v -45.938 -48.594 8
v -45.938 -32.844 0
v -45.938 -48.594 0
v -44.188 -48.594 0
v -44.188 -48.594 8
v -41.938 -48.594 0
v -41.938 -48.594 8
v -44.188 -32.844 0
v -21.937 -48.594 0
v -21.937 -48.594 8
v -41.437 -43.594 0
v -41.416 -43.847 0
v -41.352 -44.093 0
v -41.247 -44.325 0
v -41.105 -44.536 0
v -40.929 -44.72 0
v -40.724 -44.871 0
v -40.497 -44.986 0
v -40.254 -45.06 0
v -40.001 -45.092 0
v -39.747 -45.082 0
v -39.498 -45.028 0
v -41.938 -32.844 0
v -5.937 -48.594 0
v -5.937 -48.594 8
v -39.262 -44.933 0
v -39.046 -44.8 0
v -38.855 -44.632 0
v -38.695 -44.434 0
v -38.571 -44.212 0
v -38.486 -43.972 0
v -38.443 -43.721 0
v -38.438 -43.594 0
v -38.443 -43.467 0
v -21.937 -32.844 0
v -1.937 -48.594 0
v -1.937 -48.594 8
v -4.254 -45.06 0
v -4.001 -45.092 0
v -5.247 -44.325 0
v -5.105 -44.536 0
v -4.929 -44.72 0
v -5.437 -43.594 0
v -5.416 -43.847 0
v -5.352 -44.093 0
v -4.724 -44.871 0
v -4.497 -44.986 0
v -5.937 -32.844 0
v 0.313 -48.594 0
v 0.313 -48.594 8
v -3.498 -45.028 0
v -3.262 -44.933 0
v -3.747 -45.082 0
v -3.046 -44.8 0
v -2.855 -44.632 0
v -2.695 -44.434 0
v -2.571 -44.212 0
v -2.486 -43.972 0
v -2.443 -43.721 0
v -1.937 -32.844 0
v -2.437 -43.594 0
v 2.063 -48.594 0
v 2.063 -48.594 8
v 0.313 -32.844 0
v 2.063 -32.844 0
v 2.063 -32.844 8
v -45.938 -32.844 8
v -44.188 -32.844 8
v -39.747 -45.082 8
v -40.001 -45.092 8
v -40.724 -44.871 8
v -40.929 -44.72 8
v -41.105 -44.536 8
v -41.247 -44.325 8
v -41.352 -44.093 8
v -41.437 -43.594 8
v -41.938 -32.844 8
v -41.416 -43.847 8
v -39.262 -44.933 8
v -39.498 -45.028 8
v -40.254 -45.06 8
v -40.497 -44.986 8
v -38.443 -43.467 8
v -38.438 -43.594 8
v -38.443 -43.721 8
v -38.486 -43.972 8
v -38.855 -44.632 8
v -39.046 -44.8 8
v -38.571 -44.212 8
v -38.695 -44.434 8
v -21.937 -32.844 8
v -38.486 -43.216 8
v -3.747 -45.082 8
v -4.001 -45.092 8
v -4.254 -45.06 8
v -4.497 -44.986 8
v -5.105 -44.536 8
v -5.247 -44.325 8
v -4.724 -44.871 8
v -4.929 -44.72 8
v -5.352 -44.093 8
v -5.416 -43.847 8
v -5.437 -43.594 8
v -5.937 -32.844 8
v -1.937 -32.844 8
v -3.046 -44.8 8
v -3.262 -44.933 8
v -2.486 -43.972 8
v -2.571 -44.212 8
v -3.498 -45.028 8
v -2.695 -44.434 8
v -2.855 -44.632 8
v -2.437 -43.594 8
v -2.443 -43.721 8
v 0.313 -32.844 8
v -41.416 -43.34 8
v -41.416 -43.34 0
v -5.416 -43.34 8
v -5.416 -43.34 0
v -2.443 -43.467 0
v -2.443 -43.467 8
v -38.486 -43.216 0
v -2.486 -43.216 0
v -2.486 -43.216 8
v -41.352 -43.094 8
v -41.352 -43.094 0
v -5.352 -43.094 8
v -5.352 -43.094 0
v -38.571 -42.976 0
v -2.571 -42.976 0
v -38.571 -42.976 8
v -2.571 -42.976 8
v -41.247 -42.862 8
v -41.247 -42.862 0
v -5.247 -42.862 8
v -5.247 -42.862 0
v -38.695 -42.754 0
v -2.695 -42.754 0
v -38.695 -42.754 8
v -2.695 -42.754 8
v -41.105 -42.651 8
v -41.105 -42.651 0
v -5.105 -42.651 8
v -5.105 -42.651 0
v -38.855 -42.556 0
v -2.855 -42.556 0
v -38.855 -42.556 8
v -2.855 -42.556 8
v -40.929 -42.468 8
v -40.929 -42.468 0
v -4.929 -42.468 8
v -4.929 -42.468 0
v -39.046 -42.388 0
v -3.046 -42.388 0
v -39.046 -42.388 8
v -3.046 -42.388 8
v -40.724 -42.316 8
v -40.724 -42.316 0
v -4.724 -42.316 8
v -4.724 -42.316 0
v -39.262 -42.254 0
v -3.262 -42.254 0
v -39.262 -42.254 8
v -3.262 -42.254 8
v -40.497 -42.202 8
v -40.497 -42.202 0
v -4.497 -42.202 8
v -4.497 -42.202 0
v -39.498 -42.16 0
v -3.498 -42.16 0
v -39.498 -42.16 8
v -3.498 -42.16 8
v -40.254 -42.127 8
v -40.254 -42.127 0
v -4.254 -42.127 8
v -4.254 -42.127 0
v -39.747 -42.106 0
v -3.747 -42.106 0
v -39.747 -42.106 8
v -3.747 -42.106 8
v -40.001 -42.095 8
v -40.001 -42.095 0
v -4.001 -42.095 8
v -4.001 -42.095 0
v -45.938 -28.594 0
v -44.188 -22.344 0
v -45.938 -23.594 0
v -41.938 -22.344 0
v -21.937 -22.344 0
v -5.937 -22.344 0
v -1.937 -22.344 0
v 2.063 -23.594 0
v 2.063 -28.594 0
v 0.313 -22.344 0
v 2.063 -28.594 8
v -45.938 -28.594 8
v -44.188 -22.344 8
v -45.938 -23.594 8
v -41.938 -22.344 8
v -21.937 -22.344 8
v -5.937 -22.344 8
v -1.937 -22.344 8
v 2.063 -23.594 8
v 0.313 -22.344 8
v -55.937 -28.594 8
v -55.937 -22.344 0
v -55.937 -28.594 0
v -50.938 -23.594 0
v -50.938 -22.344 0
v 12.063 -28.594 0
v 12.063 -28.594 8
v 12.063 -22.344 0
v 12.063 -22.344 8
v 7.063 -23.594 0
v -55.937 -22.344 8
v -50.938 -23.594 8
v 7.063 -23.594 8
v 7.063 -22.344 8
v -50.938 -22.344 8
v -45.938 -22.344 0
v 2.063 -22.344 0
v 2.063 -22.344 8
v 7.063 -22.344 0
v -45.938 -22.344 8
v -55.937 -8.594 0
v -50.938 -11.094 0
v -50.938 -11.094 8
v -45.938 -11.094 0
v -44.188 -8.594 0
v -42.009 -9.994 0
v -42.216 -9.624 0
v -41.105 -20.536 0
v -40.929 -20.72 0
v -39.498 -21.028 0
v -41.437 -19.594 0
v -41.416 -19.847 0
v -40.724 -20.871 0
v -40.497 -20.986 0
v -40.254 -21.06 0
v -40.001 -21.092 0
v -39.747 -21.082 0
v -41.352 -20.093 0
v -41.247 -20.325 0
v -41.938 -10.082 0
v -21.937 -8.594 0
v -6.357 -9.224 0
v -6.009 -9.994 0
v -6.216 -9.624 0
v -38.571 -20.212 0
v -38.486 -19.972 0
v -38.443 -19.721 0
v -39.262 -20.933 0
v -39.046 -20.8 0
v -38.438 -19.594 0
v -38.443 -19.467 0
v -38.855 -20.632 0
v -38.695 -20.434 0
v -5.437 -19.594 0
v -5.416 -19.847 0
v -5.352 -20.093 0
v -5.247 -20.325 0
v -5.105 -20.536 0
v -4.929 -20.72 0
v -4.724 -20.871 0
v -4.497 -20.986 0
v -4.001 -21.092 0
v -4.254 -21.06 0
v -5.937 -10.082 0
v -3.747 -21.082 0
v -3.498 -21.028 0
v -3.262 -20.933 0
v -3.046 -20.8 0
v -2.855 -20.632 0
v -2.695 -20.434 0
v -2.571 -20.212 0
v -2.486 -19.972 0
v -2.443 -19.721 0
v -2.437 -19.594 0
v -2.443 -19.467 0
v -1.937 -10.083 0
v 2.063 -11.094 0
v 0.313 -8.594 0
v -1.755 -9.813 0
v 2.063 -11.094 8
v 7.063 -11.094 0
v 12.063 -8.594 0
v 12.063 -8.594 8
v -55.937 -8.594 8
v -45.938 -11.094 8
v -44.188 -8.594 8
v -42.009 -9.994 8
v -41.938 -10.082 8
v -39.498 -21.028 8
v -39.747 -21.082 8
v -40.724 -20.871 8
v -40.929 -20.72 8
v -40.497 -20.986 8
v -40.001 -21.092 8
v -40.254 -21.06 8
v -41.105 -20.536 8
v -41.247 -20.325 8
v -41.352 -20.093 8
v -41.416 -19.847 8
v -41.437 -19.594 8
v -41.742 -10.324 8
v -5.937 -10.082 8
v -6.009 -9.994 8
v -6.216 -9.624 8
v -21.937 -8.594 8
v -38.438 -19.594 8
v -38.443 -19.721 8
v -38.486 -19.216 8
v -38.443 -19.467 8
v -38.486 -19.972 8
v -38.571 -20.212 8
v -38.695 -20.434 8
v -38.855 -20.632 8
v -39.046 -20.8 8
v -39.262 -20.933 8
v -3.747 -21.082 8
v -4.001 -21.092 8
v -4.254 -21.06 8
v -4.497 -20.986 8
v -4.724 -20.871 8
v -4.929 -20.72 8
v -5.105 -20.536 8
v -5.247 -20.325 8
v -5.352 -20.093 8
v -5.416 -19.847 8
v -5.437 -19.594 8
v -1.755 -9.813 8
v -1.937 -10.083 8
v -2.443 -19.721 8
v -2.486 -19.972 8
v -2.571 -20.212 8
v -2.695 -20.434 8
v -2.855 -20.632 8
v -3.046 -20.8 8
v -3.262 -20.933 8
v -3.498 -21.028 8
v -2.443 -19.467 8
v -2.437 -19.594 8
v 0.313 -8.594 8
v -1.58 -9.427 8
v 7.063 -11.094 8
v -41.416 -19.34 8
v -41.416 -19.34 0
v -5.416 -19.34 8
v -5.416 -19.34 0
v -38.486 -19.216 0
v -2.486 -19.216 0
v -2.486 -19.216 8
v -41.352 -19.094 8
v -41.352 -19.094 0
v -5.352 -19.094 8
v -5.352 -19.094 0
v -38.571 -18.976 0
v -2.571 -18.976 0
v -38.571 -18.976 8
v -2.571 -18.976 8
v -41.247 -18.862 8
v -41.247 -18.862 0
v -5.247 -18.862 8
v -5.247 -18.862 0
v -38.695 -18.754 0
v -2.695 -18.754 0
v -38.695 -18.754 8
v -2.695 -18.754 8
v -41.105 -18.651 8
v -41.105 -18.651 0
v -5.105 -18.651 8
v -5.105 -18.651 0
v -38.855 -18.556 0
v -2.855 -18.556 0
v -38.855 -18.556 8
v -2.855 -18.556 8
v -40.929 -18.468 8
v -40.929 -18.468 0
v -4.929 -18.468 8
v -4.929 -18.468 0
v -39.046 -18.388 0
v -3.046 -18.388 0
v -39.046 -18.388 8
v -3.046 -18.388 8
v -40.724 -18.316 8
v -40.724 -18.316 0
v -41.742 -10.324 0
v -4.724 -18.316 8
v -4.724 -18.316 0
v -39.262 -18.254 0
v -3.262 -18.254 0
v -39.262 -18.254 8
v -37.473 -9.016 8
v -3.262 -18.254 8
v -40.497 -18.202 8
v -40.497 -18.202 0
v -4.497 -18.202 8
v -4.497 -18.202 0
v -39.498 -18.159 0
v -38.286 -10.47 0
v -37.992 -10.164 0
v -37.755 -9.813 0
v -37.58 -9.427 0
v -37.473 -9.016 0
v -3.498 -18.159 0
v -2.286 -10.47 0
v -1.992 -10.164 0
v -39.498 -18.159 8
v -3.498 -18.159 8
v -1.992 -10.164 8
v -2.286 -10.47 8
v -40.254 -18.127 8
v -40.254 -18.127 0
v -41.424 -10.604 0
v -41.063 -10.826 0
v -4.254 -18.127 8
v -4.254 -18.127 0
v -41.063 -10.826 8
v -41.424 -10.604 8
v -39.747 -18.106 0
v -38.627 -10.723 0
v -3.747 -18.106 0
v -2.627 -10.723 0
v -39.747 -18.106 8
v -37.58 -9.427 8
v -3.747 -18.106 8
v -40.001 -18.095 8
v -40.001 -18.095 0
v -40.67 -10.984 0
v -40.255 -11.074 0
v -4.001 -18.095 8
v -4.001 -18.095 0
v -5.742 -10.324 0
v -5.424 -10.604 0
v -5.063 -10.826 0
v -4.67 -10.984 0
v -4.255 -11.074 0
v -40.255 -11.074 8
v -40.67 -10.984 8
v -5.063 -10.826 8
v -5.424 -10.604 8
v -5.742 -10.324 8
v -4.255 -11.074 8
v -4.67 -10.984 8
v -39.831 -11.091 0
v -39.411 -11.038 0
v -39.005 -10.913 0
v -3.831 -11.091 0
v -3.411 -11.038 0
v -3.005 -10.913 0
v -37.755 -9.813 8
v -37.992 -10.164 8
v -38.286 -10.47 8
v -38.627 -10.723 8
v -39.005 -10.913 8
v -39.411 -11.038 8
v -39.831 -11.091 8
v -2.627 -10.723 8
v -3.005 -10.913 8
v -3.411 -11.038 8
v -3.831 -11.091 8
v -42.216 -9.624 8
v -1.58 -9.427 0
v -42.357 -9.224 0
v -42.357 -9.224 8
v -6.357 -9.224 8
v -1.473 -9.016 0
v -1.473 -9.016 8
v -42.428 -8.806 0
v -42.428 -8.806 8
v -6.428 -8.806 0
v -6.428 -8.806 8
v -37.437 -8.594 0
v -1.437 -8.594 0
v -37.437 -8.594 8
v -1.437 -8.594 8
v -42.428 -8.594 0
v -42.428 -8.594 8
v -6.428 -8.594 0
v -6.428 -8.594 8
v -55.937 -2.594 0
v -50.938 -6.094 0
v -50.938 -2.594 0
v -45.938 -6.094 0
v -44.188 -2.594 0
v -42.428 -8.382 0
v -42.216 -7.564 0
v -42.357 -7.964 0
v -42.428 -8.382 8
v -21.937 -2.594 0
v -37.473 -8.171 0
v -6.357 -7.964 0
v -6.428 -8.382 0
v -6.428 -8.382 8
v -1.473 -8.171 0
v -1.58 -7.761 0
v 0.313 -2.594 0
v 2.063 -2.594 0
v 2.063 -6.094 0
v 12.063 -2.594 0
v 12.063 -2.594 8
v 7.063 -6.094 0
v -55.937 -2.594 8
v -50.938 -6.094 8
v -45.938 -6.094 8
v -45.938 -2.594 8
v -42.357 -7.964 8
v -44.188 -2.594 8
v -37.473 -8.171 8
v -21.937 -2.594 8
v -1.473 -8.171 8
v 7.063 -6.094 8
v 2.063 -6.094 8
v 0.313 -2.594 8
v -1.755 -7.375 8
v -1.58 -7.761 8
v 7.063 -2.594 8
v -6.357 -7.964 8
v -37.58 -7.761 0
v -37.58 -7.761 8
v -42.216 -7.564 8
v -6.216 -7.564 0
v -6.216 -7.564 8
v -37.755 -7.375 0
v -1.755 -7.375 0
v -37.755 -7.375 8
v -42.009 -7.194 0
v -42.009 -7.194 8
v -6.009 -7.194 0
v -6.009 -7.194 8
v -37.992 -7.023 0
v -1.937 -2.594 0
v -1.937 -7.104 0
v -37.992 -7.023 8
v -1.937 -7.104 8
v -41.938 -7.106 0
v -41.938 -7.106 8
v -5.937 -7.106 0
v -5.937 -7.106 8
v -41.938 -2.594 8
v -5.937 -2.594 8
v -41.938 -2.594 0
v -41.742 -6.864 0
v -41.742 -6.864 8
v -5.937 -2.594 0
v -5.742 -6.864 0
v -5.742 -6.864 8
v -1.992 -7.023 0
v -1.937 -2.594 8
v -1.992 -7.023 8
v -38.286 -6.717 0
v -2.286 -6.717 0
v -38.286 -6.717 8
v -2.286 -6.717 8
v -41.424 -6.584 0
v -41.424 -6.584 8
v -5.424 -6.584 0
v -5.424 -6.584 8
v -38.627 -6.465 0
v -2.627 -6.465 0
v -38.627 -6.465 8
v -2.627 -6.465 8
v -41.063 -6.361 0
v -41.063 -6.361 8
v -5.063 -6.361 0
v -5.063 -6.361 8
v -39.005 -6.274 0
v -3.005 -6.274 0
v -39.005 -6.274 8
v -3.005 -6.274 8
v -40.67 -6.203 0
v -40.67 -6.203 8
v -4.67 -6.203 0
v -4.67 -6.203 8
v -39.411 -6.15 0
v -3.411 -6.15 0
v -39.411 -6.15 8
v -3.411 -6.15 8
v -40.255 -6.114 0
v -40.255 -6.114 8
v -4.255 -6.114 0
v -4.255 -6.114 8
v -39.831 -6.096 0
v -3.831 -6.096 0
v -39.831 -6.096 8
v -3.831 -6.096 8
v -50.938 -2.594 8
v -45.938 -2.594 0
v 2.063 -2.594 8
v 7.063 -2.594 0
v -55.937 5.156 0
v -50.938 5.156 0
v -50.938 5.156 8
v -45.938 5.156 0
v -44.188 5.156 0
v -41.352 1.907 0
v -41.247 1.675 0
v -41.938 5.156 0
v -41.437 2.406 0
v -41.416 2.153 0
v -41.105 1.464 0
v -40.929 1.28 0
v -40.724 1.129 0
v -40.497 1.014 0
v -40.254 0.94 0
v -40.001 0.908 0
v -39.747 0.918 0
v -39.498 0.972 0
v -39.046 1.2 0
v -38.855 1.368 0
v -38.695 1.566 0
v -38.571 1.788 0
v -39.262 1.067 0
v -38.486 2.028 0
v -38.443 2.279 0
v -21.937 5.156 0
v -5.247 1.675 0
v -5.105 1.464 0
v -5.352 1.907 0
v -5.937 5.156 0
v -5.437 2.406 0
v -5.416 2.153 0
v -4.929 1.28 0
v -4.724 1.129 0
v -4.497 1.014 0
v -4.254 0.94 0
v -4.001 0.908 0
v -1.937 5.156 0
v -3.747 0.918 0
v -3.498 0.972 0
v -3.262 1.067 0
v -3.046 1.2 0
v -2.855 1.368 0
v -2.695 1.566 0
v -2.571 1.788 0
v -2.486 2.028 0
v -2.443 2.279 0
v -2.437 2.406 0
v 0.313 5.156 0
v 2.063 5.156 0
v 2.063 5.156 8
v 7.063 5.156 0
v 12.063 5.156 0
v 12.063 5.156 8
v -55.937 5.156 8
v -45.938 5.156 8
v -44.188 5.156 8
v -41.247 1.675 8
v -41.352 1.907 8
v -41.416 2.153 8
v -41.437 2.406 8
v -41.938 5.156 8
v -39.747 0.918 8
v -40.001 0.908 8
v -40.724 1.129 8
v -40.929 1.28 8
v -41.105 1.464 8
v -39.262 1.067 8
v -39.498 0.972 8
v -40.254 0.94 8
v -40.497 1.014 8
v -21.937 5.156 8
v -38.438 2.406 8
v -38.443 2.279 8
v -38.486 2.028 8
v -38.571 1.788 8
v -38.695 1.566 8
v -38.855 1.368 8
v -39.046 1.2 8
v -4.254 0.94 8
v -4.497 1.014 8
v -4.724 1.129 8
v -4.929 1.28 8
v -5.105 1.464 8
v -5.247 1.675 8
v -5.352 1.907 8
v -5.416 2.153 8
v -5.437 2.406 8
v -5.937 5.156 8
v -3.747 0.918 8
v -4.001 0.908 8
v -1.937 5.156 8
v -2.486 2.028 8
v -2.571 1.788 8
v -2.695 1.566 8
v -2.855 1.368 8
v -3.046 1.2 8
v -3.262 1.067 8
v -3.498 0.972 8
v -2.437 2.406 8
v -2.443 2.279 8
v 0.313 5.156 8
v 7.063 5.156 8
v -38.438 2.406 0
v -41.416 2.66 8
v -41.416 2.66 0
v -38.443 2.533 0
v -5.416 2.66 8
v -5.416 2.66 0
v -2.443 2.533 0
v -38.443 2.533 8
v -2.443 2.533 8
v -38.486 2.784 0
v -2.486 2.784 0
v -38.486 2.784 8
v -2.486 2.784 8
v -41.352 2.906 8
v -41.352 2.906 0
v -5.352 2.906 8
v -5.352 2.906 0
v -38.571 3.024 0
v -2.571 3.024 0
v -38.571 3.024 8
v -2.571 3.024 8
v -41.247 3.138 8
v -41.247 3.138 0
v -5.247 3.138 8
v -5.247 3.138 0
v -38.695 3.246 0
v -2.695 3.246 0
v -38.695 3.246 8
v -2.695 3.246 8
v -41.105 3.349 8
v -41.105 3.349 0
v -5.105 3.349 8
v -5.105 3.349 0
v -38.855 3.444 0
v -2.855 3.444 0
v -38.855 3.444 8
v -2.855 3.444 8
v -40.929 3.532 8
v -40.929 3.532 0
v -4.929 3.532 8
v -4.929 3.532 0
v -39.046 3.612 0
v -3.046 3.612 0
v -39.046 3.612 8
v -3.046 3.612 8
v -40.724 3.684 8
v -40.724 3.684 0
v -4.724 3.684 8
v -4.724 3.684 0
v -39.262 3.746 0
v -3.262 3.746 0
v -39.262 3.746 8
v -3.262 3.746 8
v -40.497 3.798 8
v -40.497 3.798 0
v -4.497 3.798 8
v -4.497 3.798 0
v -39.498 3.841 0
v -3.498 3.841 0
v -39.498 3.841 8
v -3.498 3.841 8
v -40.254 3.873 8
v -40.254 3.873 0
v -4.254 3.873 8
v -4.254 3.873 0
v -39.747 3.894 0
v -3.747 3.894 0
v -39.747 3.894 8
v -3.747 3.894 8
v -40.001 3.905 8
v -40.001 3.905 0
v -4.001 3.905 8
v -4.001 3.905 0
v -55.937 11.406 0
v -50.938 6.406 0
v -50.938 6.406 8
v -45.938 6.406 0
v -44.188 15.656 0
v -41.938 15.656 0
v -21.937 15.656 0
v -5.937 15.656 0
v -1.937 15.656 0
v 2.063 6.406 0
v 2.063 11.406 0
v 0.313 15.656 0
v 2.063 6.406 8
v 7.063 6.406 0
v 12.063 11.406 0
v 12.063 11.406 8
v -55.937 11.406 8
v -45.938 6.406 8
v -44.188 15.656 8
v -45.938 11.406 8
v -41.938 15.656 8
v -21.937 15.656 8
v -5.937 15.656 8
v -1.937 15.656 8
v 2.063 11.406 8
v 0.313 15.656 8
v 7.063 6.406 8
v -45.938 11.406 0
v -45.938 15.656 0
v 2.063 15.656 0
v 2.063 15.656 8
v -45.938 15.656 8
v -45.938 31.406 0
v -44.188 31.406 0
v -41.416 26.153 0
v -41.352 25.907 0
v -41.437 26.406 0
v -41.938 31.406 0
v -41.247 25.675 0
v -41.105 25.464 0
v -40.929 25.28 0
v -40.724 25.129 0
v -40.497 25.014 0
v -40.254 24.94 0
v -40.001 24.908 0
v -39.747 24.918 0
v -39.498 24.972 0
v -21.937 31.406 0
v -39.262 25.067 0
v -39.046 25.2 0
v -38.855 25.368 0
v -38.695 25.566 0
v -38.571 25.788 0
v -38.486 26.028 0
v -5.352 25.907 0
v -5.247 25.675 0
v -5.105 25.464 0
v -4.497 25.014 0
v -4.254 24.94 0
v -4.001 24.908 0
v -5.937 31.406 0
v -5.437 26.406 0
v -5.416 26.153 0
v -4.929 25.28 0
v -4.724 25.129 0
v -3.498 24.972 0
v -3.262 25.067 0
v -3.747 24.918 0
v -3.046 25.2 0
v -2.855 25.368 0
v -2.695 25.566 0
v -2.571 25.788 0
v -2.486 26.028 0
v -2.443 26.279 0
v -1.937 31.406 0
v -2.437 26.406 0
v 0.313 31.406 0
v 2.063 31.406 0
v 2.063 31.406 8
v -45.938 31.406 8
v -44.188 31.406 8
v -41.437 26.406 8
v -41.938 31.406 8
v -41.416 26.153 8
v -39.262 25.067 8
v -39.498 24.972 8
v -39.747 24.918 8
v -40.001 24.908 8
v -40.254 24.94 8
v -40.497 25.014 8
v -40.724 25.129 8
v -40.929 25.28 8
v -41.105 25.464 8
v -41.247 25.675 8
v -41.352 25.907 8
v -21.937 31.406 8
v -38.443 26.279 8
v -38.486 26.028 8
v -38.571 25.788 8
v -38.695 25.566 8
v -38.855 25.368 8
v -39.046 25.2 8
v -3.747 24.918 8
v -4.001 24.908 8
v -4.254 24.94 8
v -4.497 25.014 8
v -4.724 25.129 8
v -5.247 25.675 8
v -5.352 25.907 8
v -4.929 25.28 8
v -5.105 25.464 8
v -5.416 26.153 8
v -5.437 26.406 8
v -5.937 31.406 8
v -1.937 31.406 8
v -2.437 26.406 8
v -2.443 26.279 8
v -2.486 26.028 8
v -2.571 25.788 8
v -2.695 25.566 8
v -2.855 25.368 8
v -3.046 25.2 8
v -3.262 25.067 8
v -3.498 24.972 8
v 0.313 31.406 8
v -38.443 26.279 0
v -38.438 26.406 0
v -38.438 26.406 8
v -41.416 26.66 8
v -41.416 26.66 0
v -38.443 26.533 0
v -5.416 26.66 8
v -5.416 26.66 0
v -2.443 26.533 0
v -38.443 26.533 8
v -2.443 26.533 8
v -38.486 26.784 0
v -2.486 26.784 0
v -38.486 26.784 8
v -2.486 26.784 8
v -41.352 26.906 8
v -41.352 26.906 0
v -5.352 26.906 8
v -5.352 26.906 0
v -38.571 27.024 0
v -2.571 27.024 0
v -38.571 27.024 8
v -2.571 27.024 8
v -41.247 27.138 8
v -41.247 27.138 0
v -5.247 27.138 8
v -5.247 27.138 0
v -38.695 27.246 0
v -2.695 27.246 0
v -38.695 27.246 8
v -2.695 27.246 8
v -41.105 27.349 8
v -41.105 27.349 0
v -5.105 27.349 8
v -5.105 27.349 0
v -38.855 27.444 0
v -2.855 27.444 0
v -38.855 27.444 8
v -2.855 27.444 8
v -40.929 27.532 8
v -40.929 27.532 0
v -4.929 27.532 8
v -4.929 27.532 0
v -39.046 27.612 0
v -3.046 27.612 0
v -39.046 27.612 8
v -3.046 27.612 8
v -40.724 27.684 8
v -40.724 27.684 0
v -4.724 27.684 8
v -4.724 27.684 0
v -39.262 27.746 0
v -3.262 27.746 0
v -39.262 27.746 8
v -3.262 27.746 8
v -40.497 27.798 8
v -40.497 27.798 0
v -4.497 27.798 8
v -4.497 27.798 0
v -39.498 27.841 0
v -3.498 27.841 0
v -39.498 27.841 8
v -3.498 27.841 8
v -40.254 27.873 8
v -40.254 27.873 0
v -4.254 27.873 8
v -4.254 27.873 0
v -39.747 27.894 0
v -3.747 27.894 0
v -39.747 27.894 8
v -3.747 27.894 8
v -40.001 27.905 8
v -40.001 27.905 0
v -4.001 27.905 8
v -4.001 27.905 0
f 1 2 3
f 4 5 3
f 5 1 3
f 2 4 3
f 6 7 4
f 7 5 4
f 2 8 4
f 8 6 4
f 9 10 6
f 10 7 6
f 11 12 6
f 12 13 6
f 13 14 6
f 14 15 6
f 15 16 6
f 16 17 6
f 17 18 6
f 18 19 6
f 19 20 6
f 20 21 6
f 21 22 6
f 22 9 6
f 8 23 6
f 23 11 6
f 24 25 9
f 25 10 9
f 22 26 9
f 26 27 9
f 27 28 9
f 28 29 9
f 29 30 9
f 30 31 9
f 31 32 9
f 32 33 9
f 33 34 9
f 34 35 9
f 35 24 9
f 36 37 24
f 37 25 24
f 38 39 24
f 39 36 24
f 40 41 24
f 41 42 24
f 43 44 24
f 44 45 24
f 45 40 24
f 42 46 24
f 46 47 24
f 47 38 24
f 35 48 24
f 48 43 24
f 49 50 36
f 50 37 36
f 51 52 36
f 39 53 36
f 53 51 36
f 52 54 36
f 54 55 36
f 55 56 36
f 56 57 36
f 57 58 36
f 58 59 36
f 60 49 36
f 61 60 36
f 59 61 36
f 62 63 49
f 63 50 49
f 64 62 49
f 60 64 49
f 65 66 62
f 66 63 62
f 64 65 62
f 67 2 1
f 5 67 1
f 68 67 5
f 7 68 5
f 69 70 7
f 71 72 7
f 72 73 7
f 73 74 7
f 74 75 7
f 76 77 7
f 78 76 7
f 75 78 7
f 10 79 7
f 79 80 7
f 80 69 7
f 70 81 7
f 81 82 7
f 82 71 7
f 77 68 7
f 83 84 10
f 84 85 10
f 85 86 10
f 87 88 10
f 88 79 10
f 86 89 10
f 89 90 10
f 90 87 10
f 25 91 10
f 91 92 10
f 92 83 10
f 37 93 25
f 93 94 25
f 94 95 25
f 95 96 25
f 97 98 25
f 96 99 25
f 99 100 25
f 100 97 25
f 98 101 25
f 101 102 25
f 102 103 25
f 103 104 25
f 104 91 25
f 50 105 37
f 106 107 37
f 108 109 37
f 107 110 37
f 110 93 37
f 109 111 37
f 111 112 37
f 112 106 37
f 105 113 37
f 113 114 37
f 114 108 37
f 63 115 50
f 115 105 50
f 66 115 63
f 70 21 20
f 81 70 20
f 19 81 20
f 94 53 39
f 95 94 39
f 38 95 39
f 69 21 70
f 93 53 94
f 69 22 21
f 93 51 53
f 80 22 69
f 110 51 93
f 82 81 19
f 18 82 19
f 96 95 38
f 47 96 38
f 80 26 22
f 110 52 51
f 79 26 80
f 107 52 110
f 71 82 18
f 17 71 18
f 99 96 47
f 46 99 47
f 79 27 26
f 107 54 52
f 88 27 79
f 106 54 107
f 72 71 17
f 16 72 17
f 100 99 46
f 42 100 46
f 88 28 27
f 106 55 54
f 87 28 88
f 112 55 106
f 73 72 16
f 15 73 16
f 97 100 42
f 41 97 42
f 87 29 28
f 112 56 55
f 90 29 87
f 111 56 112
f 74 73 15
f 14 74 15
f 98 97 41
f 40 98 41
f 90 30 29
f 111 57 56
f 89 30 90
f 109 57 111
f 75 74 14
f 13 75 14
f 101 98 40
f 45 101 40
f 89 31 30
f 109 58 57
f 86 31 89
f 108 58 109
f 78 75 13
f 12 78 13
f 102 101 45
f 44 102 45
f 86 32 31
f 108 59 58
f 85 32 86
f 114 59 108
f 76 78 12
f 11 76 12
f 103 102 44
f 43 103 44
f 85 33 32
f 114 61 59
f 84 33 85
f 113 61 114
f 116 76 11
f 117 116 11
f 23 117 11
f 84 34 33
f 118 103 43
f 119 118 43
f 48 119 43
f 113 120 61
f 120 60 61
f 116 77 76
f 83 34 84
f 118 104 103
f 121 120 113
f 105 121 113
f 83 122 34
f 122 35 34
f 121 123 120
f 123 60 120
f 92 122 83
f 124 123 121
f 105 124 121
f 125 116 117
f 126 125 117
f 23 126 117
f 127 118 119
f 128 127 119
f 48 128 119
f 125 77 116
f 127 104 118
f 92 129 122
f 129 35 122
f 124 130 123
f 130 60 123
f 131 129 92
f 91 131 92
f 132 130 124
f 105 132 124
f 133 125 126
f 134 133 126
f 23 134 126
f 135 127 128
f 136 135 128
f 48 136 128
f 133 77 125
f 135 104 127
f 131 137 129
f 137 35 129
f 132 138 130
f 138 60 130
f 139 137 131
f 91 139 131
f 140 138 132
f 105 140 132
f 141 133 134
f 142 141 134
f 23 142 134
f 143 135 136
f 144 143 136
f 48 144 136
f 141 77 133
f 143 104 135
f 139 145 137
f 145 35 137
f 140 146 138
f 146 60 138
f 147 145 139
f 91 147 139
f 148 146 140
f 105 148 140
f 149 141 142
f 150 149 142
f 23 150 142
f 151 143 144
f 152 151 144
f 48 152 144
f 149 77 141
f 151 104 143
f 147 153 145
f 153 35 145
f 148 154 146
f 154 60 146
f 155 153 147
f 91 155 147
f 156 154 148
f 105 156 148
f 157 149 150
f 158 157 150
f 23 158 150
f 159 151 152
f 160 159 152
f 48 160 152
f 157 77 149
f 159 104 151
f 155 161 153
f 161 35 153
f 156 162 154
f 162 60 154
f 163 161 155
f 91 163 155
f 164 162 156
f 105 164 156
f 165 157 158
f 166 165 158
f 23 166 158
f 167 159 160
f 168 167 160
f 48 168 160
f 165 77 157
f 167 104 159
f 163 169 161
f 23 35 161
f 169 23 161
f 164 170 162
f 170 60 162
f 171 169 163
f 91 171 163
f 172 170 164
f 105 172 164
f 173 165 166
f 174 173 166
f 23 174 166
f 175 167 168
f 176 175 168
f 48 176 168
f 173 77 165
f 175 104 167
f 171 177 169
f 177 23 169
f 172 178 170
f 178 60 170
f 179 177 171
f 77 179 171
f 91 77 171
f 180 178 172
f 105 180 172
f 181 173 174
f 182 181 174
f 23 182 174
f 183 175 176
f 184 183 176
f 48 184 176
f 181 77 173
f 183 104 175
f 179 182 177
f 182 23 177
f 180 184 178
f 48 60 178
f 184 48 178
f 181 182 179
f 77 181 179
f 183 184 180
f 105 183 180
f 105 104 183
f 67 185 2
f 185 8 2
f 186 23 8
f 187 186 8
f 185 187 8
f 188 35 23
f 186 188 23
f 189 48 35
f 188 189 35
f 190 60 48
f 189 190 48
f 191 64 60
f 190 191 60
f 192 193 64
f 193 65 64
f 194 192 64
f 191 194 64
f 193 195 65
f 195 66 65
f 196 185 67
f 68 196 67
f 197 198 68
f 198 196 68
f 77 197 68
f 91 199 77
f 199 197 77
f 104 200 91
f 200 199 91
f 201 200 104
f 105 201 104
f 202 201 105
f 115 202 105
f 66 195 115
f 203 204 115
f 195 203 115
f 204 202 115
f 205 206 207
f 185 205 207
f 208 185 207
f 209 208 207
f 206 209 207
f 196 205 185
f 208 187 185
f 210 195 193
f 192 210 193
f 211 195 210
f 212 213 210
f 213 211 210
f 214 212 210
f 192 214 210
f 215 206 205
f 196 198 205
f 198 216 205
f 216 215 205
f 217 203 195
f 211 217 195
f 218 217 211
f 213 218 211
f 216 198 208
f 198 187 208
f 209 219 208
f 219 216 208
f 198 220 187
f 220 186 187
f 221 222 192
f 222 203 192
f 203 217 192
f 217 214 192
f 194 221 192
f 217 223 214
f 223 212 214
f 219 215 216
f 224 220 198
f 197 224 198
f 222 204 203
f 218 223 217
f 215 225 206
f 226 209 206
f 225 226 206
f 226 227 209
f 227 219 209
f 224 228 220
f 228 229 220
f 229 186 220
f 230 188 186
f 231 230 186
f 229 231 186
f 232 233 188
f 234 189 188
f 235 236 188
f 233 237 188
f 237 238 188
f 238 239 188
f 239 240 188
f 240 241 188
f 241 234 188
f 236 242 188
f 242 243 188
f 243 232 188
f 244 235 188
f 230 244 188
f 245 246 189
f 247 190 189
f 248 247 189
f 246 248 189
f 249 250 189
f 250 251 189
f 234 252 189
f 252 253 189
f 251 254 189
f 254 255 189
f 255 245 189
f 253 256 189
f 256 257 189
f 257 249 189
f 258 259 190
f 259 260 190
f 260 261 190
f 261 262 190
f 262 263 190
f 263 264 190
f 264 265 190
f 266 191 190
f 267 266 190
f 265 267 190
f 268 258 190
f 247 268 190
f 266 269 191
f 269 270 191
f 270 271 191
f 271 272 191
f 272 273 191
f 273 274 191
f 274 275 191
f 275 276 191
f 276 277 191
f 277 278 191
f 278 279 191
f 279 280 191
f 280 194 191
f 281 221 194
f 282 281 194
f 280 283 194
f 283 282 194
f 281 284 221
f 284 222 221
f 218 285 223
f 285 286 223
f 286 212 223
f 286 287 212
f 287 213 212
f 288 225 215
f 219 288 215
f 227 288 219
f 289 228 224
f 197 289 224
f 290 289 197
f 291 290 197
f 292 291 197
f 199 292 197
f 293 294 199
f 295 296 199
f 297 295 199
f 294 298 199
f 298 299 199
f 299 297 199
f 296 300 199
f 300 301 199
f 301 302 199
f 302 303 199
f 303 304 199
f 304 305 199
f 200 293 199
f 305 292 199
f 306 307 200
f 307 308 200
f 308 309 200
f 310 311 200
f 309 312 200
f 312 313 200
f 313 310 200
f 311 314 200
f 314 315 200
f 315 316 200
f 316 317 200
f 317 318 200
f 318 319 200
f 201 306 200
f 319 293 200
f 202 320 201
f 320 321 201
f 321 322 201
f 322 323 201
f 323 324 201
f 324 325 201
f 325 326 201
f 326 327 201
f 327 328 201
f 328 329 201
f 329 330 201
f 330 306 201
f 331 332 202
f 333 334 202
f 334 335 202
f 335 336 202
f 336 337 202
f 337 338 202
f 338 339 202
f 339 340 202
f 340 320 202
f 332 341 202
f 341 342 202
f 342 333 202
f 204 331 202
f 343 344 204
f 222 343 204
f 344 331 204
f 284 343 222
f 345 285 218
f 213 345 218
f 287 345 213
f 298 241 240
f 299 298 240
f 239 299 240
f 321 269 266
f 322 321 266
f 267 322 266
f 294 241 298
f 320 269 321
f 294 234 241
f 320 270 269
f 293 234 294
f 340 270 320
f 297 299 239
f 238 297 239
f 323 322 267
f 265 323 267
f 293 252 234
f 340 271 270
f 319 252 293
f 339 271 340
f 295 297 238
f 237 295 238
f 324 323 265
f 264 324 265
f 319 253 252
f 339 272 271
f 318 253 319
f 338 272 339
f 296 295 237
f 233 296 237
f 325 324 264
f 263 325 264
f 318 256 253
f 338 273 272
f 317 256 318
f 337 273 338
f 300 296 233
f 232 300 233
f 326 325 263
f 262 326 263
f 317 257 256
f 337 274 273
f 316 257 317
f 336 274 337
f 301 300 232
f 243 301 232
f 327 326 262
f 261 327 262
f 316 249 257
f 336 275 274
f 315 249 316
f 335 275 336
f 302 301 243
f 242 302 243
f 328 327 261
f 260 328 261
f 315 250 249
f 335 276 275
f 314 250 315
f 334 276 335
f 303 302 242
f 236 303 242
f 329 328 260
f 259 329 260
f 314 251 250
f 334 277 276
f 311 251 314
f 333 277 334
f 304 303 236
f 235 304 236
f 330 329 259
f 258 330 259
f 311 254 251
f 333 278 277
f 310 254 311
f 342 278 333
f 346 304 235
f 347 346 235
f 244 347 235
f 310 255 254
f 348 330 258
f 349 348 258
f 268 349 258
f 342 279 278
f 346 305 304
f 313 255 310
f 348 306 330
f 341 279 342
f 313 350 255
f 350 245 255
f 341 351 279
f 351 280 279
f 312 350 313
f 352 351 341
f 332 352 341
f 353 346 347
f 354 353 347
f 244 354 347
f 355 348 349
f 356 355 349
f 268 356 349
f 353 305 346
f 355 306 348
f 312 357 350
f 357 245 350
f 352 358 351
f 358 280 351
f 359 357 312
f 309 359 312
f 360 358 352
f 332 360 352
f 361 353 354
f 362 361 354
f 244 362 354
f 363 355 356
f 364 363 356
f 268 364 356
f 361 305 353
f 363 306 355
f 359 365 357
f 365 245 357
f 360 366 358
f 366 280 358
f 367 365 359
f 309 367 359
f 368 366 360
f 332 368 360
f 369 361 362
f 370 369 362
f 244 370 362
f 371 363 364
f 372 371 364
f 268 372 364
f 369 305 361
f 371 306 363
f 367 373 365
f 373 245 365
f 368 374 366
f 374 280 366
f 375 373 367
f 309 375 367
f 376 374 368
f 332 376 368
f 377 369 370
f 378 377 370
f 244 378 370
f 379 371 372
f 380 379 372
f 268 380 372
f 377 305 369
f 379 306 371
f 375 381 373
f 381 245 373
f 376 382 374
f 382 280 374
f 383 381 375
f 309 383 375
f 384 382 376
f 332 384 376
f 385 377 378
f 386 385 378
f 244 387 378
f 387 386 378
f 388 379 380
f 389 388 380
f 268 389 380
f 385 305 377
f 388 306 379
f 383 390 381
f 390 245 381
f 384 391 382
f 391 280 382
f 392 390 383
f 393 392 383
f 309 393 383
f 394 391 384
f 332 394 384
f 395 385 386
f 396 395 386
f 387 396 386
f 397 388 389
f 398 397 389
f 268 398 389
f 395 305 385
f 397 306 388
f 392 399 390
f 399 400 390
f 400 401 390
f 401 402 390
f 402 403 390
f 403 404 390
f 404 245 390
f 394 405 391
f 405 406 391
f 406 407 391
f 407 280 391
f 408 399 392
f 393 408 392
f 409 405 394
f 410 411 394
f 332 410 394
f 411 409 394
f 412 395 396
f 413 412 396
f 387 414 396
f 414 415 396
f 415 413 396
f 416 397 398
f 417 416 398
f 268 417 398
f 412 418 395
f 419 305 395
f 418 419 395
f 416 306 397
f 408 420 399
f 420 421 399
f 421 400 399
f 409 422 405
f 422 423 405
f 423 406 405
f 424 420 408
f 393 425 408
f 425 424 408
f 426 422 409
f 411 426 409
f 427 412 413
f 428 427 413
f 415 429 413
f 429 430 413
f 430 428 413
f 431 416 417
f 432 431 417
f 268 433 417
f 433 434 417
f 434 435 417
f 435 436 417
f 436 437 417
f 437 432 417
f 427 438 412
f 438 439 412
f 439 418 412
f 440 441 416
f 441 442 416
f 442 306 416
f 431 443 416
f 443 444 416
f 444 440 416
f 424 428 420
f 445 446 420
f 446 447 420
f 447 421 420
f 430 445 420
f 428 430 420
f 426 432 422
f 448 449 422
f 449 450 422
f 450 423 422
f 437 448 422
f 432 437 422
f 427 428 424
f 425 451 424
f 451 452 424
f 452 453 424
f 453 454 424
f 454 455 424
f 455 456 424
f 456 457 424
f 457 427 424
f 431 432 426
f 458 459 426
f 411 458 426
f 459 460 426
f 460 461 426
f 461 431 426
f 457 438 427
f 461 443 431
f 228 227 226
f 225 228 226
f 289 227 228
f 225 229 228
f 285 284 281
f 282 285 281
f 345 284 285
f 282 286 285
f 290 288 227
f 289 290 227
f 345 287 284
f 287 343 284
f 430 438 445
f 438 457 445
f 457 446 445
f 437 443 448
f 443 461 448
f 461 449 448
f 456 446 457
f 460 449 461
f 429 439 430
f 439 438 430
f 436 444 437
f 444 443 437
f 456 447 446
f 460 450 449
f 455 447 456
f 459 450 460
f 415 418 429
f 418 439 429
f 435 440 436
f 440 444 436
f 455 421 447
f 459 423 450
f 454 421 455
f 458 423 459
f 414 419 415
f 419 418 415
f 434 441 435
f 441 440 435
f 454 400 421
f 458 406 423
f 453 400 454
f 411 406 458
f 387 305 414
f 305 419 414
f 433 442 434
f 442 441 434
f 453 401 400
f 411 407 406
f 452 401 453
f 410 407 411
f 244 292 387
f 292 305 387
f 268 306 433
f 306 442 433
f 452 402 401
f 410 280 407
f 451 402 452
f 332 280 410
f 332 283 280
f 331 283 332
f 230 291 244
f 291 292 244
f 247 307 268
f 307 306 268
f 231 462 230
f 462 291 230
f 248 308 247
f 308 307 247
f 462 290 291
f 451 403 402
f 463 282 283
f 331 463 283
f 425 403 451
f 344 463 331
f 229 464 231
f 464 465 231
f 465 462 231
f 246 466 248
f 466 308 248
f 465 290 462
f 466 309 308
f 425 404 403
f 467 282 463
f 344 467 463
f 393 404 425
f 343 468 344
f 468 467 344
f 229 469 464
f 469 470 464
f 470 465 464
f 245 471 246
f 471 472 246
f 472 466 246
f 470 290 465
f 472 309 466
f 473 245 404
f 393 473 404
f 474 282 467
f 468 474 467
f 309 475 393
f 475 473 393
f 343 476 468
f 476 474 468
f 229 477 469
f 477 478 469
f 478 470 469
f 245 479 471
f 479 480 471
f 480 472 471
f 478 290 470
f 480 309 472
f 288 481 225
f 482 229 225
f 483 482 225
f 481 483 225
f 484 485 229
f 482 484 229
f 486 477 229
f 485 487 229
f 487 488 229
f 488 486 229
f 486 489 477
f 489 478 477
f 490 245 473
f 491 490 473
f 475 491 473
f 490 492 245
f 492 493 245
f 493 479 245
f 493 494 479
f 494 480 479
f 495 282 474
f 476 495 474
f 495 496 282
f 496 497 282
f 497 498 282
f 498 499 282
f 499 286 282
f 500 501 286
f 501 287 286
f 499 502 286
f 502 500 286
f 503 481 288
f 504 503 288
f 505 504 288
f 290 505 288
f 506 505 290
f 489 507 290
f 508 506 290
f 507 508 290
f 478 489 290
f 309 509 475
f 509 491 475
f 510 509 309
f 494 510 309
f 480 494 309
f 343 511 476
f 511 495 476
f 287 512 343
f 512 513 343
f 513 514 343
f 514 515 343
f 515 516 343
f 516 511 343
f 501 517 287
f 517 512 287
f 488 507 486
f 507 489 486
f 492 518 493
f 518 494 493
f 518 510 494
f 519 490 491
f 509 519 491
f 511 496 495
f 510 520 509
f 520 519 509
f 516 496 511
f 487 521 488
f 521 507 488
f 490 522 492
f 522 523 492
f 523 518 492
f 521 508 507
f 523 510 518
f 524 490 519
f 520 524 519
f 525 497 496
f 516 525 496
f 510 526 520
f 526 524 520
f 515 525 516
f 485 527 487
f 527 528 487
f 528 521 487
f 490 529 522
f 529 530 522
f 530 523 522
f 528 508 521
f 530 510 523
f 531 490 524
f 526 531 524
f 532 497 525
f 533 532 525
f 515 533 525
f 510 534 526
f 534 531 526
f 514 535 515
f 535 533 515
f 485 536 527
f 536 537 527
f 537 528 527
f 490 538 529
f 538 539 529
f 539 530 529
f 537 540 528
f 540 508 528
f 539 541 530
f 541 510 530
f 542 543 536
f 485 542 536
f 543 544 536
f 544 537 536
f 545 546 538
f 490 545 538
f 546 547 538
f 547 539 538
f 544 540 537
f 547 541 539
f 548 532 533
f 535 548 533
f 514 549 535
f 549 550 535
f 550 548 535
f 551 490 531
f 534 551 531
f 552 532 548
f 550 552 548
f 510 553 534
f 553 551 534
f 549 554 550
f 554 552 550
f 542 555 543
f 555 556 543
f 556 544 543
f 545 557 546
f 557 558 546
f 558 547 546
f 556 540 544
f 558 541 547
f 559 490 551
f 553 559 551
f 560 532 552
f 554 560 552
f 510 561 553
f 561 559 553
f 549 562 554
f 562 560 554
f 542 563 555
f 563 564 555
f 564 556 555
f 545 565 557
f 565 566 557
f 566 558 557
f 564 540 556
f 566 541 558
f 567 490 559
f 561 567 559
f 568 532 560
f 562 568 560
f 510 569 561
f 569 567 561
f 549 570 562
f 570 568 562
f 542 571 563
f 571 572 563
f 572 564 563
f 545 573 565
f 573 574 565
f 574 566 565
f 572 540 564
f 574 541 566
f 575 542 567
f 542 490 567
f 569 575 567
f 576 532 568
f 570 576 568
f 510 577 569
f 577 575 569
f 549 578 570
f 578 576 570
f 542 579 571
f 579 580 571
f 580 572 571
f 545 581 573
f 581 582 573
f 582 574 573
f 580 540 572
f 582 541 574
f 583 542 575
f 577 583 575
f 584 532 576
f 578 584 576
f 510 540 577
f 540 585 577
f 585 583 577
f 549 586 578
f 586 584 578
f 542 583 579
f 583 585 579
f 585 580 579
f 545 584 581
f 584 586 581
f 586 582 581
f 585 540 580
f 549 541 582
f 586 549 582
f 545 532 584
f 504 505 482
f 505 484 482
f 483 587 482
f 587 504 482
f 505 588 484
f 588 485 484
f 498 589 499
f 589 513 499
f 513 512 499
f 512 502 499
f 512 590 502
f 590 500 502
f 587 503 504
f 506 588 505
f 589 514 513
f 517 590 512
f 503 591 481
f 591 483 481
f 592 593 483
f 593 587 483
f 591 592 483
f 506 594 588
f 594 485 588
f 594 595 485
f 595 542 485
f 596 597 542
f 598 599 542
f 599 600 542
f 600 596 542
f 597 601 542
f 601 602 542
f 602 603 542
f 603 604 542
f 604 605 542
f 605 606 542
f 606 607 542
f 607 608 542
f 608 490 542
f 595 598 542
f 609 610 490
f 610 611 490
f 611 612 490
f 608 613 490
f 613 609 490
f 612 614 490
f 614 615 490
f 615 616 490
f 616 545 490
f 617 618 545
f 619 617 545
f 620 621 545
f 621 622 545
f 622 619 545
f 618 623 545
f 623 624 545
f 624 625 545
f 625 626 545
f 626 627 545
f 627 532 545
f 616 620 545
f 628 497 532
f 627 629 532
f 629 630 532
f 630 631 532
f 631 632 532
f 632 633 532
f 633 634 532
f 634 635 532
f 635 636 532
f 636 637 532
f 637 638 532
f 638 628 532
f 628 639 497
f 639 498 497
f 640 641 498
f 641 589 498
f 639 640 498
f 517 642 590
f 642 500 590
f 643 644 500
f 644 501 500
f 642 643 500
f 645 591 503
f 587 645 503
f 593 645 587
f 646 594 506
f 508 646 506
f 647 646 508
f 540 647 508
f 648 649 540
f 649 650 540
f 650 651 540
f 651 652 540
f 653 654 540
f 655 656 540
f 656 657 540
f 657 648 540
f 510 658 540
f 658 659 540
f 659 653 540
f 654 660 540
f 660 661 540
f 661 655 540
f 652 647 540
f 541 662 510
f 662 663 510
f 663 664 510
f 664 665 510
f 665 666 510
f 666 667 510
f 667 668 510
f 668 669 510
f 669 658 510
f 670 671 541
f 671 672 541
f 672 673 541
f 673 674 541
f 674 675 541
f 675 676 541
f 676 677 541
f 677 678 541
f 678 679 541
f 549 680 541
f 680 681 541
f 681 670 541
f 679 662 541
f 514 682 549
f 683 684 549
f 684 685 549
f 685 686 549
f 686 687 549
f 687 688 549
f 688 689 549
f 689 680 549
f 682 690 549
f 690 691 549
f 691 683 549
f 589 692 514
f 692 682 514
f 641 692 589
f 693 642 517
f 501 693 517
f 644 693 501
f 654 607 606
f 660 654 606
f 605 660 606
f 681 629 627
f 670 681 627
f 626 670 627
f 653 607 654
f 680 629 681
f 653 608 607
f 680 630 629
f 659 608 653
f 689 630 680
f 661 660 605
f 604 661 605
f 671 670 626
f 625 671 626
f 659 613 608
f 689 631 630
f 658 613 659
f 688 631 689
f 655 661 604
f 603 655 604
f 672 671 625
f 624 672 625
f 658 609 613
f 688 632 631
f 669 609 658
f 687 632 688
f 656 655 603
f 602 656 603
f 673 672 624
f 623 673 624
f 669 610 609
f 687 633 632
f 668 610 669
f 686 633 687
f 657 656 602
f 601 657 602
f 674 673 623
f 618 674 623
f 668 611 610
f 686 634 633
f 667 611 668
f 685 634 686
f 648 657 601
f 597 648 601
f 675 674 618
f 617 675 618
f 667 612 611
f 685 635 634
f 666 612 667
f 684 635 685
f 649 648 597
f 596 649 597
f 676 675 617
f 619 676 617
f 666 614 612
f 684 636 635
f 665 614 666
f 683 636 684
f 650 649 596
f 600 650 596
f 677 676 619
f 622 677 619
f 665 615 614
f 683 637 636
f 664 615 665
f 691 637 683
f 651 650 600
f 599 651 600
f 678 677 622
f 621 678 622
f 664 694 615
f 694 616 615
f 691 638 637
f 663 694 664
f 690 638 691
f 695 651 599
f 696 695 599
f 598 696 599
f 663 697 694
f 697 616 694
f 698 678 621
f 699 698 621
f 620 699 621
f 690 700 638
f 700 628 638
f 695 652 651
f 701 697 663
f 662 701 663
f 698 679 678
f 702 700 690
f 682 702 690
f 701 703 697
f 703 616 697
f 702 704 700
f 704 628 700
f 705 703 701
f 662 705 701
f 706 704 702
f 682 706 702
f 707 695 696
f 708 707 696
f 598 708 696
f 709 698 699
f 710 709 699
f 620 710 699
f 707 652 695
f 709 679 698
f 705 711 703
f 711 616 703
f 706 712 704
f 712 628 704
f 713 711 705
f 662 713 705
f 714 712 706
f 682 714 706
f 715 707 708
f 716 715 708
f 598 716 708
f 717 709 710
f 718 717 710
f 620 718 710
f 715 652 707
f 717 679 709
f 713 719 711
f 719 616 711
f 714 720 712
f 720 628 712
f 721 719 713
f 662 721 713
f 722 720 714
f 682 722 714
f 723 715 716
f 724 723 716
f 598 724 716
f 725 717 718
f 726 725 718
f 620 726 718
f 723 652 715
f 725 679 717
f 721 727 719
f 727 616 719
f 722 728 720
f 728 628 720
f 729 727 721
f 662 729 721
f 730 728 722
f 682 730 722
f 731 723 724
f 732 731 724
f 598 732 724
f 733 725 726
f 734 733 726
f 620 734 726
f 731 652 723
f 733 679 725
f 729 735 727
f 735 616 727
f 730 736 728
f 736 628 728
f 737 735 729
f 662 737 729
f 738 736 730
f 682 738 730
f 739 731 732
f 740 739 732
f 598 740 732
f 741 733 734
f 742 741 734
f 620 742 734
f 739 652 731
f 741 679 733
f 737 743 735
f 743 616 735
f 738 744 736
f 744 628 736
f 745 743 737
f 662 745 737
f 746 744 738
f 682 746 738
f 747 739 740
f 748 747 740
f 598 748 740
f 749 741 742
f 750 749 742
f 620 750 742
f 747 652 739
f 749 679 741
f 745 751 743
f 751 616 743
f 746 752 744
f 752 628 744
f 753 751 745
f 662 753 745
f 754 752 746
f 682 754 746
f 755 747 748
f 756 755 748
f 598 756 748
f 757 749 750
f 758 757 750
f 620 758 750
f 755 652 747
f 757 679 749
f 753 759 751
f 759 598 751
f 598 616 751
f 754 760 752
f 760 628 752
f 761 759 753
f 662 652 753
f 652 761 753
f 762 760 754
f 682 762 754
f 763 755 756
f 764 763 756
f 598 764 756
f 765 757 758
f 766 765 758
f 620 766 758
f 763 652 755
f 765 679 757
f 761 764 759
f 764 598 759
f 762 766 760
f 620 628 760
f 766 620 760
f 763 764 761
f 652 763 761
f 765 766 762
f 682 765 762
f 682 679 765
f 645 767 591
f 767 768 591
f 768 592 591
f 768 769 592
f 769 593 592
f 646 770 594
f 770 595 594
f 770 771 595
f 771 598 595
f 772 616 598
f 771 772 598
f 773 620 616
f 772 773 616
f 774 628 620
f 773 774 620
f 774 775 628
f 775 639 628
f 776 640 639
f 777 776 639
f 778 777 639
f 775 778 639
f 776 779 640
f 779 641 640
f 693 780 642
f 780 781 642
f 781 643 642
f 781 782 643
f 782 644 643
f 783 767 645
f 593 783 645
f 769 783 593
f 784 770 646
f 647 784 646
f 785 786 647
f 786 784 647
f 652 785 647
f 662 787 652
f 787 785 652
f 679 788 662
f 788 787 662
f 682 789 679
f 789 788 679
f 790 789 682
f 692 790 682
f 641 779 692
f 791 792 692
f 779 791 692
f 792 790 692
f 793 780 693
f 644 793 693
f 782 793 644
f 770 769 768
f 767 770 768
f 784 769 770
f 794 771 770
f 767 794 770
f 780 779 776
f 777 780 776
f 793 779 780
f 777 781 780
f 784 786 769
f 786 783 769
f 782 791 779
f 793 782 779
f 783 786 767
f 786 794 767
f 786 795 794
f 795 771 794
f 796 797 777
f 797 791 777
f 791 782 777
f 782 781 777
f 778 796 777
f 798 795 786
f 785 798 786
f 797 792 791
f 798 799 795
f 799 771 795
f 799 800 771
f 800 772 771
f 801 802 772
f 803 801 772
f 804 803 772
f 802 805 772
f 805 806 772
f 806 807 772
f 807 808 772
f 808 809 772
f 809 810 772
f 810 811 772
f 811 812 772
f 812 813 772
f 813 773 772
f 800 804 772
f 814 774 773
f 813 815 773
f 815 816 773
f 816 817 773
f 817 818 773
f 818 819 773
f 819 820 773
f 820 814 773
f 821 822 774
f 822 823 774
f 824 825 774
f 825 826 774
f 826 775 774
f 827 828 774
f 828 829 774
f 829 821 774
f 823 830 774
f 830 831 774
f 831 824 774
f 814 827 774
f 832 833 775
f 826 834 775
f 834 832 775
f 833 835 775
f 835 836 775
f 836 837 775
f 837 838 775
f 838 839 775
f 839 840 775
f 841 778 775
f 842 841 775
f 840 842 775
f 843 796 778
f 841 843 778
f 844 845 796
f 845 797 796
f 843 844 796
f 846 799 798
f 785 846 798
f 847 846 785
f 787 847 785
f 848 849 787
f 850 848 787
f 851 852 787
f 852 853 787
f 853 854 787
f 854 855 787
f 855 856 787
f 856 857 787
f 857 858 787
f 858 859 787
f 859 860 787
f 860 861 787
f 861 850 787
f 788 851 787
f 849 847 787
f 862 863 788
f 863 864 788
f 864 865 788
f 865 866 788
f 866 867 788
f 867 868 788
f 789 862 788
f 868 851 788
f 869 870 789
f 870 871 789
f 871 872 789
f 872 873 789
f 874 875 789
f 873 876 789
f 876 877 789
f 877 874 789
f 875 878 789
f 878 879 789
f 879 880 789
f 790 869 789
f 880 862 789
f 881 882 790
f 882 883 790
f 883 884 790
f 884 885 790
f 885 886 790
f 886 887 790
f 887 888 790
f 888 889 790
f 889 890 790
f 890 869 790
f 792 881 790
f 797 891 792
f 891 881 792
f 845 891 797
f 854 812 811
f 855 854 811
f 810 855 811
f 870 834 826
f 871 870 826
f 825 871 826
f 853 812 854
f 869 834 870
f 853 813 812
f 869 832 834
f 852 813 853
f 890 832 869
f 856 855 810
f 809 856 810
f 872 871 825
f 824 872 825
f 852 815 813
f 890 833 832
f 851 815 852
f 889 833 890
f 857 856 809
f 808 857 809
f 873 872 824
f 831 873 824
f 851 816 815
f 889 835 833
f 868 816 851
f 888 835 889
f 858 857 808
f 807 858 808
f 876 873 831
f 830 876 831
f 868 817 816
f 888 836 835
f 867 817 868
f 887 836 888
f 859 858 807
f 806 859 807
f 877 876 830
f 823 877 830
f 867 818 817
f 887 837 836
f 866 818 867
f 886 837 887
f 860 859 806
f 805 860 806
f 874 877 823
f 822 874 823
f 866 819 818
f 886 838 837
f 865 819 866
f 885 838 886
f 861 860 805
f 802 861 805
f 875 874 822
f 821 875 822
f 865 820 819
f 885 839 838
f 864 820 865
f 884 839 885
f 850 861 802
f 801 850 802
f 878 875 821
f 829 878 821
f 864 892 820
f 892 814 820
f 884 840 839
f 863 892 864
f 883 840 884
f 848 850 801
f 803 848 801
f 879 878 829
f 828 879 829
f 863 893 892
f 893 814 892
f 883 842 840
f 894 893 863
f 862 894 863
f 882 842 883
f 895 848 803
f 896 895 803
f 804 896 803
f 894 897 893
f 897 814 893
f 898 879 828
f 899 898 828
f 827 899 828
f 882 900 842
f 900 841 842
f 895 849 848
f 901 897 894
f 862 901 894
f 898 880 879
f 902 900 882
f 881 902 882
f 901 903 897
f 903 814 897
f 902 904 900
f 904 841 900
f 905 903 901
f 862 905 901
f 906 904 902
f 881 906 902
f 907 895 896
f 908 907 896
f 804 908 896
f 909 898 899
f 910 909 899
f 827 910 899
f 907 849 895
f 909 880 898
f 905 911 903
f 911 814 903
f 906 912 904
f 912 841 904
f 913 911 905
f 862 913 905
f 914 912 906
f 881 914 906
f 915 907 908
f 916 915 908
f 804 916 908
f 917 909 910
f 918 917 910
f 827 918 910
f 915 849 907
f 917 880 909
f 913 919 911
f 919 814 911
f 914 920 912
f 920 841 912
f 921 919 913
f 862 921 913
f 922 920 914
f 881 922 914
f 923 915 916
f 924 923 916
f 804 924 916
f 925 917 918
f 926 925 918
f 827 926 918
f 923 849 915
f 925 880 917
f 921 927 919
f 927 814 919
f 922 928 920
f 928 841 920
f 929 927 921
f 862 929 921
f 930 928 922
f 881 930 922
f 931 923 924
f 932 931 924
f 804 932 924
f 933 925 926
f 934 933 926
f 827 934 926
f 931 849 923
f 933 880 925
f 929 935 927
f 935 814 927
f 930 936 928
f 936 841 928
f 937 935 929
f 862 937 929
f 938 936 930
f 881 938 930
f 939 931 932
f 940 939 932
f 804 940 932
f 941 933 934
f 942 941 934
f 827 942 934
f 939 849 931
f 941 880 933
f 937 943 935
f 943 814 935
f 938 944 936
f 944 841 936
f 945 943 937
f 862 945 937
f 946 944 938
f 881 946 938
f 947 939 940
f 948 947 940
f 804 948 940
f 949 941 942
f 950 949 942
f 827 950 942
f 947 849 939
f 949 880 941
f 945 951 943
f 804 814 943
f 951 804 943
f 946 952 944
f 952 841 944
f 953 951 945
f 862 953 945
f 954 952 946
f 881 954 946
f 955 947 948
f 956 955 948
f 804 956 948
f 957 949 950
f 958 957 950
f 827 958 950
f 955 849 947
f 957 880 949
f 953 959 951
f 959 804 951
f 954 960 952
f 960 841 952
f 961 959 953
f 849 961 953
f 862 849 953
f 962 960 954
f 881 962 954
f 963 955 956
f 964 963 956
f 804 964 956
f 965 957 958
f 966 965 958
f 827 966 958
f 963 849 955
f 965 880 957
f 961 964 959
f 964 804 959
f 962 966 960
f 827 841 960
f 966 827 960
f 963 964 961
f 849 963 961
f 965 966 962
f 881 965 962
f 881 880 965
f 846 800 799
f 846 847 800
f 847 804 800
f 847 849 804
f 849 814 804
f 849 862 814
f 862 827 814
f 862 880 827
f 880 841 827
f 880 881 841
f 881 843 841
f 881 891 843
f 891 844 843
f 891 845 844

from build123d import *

# Parameters (mm, degrees)
SKETCH_1_W          = 5
SKETCH_1_H          = 12.5
SKETCH_1_R          = 1.5
EXTRUDE_1_DEPTH     = 8
SKETCH_2_R          = 2.5
CUT_EXTRUDE_1_DEPTH = 10


with BuildPart() as part:
    # 草图1 → 凸台-拉伸1 (new body)
    with BuildSketch(Plane.XY):
        Polygon((2.0625, 31.40625), (-45.9375, 31.40625), (-45.9375, 11.40625), (-55.9375, 11.40625), (-55.9375, -28.59375), (-45.9375, -28.59375), (-45.9375, -48.59375), (2.0625, -48.59375), (2.0625, -28.59375), (12.0625, -28.59375), (12.0625, 11.40625), (2.0625, 11.40625), align=None)
        with Locations((4.5625, 0.15625)):
            Rectangle(SKETCH_1_W, SKETCH_1_H, mode=Mode.SUBTRACT)
        with Locations((4.5625, -17.34375)):
            Rectangle(SKETCH_1_W, SKETCH_1_H, mode=Mode.SUBTRACT)
        with Locations((-39.9375, -43.59375)):
            Circle(SKETCH_1_R, mode=Mode.SUBTRACT)
        with Locations((-39.9375, -19.59375)):
            Circle(SKETCH_1_R, mode=Mode.SUBTRACT)
        with Locations((-48.4375, -17.34375)):
            Rectangle(SKETCH_1_W, SKETCH_1_H, mode=Mode.SUBTRACT)
        with Locations((-3.9375, -43.59375)):
            Circle(SKETCH_1_R, mode=Mode.SUBTRACT)
        with Locations((-3.9375, -19.59375)):
            Circle(SKETCH_1_R, mode=Mode.SUBTRACT)
        with Locations((-48.4375, 0.15625)):
            Rectangle(SKETCH_1_W, SKETCH_1_H, mode=Mode.SUBTRACT)
        with Locations((-39.9375, 2.40625)):
            Circle(SKETCH_1_R, mode=Mode.SUBTRACT)
        with Locations((-39.9375, 26.40625)):
            Circle(SKETCH_1_R, mode=Mode.SUBTRACT)
        with Locations((-3.9375, 2.40625)):
            Circle(SKETCH_1_R, mode=Mode.SUBTRACT)
        with Locations((-3.9375, 26.40625)):
            Circle(SKETCH_1_R, mode=Mode.SUBTRACT)
    extrude(amount=EXTRUDE_1_DEPTH)

    # 草图2 → 切除-拉伸1 (cut)
    with BuildSketch(Plane.XY.offset(8)):
        with Locations((-39.9375, -8.59375)):
            Circle(SKETCH_2_R)
        with Locations((-3.9375, -8.59375)):
            Circle(SKETCH_2_R)
    extrude(amount=-CUT_EXTRUDE_1_DEPTH, mode=Mode.SUBTRACT)


solid = part.part
